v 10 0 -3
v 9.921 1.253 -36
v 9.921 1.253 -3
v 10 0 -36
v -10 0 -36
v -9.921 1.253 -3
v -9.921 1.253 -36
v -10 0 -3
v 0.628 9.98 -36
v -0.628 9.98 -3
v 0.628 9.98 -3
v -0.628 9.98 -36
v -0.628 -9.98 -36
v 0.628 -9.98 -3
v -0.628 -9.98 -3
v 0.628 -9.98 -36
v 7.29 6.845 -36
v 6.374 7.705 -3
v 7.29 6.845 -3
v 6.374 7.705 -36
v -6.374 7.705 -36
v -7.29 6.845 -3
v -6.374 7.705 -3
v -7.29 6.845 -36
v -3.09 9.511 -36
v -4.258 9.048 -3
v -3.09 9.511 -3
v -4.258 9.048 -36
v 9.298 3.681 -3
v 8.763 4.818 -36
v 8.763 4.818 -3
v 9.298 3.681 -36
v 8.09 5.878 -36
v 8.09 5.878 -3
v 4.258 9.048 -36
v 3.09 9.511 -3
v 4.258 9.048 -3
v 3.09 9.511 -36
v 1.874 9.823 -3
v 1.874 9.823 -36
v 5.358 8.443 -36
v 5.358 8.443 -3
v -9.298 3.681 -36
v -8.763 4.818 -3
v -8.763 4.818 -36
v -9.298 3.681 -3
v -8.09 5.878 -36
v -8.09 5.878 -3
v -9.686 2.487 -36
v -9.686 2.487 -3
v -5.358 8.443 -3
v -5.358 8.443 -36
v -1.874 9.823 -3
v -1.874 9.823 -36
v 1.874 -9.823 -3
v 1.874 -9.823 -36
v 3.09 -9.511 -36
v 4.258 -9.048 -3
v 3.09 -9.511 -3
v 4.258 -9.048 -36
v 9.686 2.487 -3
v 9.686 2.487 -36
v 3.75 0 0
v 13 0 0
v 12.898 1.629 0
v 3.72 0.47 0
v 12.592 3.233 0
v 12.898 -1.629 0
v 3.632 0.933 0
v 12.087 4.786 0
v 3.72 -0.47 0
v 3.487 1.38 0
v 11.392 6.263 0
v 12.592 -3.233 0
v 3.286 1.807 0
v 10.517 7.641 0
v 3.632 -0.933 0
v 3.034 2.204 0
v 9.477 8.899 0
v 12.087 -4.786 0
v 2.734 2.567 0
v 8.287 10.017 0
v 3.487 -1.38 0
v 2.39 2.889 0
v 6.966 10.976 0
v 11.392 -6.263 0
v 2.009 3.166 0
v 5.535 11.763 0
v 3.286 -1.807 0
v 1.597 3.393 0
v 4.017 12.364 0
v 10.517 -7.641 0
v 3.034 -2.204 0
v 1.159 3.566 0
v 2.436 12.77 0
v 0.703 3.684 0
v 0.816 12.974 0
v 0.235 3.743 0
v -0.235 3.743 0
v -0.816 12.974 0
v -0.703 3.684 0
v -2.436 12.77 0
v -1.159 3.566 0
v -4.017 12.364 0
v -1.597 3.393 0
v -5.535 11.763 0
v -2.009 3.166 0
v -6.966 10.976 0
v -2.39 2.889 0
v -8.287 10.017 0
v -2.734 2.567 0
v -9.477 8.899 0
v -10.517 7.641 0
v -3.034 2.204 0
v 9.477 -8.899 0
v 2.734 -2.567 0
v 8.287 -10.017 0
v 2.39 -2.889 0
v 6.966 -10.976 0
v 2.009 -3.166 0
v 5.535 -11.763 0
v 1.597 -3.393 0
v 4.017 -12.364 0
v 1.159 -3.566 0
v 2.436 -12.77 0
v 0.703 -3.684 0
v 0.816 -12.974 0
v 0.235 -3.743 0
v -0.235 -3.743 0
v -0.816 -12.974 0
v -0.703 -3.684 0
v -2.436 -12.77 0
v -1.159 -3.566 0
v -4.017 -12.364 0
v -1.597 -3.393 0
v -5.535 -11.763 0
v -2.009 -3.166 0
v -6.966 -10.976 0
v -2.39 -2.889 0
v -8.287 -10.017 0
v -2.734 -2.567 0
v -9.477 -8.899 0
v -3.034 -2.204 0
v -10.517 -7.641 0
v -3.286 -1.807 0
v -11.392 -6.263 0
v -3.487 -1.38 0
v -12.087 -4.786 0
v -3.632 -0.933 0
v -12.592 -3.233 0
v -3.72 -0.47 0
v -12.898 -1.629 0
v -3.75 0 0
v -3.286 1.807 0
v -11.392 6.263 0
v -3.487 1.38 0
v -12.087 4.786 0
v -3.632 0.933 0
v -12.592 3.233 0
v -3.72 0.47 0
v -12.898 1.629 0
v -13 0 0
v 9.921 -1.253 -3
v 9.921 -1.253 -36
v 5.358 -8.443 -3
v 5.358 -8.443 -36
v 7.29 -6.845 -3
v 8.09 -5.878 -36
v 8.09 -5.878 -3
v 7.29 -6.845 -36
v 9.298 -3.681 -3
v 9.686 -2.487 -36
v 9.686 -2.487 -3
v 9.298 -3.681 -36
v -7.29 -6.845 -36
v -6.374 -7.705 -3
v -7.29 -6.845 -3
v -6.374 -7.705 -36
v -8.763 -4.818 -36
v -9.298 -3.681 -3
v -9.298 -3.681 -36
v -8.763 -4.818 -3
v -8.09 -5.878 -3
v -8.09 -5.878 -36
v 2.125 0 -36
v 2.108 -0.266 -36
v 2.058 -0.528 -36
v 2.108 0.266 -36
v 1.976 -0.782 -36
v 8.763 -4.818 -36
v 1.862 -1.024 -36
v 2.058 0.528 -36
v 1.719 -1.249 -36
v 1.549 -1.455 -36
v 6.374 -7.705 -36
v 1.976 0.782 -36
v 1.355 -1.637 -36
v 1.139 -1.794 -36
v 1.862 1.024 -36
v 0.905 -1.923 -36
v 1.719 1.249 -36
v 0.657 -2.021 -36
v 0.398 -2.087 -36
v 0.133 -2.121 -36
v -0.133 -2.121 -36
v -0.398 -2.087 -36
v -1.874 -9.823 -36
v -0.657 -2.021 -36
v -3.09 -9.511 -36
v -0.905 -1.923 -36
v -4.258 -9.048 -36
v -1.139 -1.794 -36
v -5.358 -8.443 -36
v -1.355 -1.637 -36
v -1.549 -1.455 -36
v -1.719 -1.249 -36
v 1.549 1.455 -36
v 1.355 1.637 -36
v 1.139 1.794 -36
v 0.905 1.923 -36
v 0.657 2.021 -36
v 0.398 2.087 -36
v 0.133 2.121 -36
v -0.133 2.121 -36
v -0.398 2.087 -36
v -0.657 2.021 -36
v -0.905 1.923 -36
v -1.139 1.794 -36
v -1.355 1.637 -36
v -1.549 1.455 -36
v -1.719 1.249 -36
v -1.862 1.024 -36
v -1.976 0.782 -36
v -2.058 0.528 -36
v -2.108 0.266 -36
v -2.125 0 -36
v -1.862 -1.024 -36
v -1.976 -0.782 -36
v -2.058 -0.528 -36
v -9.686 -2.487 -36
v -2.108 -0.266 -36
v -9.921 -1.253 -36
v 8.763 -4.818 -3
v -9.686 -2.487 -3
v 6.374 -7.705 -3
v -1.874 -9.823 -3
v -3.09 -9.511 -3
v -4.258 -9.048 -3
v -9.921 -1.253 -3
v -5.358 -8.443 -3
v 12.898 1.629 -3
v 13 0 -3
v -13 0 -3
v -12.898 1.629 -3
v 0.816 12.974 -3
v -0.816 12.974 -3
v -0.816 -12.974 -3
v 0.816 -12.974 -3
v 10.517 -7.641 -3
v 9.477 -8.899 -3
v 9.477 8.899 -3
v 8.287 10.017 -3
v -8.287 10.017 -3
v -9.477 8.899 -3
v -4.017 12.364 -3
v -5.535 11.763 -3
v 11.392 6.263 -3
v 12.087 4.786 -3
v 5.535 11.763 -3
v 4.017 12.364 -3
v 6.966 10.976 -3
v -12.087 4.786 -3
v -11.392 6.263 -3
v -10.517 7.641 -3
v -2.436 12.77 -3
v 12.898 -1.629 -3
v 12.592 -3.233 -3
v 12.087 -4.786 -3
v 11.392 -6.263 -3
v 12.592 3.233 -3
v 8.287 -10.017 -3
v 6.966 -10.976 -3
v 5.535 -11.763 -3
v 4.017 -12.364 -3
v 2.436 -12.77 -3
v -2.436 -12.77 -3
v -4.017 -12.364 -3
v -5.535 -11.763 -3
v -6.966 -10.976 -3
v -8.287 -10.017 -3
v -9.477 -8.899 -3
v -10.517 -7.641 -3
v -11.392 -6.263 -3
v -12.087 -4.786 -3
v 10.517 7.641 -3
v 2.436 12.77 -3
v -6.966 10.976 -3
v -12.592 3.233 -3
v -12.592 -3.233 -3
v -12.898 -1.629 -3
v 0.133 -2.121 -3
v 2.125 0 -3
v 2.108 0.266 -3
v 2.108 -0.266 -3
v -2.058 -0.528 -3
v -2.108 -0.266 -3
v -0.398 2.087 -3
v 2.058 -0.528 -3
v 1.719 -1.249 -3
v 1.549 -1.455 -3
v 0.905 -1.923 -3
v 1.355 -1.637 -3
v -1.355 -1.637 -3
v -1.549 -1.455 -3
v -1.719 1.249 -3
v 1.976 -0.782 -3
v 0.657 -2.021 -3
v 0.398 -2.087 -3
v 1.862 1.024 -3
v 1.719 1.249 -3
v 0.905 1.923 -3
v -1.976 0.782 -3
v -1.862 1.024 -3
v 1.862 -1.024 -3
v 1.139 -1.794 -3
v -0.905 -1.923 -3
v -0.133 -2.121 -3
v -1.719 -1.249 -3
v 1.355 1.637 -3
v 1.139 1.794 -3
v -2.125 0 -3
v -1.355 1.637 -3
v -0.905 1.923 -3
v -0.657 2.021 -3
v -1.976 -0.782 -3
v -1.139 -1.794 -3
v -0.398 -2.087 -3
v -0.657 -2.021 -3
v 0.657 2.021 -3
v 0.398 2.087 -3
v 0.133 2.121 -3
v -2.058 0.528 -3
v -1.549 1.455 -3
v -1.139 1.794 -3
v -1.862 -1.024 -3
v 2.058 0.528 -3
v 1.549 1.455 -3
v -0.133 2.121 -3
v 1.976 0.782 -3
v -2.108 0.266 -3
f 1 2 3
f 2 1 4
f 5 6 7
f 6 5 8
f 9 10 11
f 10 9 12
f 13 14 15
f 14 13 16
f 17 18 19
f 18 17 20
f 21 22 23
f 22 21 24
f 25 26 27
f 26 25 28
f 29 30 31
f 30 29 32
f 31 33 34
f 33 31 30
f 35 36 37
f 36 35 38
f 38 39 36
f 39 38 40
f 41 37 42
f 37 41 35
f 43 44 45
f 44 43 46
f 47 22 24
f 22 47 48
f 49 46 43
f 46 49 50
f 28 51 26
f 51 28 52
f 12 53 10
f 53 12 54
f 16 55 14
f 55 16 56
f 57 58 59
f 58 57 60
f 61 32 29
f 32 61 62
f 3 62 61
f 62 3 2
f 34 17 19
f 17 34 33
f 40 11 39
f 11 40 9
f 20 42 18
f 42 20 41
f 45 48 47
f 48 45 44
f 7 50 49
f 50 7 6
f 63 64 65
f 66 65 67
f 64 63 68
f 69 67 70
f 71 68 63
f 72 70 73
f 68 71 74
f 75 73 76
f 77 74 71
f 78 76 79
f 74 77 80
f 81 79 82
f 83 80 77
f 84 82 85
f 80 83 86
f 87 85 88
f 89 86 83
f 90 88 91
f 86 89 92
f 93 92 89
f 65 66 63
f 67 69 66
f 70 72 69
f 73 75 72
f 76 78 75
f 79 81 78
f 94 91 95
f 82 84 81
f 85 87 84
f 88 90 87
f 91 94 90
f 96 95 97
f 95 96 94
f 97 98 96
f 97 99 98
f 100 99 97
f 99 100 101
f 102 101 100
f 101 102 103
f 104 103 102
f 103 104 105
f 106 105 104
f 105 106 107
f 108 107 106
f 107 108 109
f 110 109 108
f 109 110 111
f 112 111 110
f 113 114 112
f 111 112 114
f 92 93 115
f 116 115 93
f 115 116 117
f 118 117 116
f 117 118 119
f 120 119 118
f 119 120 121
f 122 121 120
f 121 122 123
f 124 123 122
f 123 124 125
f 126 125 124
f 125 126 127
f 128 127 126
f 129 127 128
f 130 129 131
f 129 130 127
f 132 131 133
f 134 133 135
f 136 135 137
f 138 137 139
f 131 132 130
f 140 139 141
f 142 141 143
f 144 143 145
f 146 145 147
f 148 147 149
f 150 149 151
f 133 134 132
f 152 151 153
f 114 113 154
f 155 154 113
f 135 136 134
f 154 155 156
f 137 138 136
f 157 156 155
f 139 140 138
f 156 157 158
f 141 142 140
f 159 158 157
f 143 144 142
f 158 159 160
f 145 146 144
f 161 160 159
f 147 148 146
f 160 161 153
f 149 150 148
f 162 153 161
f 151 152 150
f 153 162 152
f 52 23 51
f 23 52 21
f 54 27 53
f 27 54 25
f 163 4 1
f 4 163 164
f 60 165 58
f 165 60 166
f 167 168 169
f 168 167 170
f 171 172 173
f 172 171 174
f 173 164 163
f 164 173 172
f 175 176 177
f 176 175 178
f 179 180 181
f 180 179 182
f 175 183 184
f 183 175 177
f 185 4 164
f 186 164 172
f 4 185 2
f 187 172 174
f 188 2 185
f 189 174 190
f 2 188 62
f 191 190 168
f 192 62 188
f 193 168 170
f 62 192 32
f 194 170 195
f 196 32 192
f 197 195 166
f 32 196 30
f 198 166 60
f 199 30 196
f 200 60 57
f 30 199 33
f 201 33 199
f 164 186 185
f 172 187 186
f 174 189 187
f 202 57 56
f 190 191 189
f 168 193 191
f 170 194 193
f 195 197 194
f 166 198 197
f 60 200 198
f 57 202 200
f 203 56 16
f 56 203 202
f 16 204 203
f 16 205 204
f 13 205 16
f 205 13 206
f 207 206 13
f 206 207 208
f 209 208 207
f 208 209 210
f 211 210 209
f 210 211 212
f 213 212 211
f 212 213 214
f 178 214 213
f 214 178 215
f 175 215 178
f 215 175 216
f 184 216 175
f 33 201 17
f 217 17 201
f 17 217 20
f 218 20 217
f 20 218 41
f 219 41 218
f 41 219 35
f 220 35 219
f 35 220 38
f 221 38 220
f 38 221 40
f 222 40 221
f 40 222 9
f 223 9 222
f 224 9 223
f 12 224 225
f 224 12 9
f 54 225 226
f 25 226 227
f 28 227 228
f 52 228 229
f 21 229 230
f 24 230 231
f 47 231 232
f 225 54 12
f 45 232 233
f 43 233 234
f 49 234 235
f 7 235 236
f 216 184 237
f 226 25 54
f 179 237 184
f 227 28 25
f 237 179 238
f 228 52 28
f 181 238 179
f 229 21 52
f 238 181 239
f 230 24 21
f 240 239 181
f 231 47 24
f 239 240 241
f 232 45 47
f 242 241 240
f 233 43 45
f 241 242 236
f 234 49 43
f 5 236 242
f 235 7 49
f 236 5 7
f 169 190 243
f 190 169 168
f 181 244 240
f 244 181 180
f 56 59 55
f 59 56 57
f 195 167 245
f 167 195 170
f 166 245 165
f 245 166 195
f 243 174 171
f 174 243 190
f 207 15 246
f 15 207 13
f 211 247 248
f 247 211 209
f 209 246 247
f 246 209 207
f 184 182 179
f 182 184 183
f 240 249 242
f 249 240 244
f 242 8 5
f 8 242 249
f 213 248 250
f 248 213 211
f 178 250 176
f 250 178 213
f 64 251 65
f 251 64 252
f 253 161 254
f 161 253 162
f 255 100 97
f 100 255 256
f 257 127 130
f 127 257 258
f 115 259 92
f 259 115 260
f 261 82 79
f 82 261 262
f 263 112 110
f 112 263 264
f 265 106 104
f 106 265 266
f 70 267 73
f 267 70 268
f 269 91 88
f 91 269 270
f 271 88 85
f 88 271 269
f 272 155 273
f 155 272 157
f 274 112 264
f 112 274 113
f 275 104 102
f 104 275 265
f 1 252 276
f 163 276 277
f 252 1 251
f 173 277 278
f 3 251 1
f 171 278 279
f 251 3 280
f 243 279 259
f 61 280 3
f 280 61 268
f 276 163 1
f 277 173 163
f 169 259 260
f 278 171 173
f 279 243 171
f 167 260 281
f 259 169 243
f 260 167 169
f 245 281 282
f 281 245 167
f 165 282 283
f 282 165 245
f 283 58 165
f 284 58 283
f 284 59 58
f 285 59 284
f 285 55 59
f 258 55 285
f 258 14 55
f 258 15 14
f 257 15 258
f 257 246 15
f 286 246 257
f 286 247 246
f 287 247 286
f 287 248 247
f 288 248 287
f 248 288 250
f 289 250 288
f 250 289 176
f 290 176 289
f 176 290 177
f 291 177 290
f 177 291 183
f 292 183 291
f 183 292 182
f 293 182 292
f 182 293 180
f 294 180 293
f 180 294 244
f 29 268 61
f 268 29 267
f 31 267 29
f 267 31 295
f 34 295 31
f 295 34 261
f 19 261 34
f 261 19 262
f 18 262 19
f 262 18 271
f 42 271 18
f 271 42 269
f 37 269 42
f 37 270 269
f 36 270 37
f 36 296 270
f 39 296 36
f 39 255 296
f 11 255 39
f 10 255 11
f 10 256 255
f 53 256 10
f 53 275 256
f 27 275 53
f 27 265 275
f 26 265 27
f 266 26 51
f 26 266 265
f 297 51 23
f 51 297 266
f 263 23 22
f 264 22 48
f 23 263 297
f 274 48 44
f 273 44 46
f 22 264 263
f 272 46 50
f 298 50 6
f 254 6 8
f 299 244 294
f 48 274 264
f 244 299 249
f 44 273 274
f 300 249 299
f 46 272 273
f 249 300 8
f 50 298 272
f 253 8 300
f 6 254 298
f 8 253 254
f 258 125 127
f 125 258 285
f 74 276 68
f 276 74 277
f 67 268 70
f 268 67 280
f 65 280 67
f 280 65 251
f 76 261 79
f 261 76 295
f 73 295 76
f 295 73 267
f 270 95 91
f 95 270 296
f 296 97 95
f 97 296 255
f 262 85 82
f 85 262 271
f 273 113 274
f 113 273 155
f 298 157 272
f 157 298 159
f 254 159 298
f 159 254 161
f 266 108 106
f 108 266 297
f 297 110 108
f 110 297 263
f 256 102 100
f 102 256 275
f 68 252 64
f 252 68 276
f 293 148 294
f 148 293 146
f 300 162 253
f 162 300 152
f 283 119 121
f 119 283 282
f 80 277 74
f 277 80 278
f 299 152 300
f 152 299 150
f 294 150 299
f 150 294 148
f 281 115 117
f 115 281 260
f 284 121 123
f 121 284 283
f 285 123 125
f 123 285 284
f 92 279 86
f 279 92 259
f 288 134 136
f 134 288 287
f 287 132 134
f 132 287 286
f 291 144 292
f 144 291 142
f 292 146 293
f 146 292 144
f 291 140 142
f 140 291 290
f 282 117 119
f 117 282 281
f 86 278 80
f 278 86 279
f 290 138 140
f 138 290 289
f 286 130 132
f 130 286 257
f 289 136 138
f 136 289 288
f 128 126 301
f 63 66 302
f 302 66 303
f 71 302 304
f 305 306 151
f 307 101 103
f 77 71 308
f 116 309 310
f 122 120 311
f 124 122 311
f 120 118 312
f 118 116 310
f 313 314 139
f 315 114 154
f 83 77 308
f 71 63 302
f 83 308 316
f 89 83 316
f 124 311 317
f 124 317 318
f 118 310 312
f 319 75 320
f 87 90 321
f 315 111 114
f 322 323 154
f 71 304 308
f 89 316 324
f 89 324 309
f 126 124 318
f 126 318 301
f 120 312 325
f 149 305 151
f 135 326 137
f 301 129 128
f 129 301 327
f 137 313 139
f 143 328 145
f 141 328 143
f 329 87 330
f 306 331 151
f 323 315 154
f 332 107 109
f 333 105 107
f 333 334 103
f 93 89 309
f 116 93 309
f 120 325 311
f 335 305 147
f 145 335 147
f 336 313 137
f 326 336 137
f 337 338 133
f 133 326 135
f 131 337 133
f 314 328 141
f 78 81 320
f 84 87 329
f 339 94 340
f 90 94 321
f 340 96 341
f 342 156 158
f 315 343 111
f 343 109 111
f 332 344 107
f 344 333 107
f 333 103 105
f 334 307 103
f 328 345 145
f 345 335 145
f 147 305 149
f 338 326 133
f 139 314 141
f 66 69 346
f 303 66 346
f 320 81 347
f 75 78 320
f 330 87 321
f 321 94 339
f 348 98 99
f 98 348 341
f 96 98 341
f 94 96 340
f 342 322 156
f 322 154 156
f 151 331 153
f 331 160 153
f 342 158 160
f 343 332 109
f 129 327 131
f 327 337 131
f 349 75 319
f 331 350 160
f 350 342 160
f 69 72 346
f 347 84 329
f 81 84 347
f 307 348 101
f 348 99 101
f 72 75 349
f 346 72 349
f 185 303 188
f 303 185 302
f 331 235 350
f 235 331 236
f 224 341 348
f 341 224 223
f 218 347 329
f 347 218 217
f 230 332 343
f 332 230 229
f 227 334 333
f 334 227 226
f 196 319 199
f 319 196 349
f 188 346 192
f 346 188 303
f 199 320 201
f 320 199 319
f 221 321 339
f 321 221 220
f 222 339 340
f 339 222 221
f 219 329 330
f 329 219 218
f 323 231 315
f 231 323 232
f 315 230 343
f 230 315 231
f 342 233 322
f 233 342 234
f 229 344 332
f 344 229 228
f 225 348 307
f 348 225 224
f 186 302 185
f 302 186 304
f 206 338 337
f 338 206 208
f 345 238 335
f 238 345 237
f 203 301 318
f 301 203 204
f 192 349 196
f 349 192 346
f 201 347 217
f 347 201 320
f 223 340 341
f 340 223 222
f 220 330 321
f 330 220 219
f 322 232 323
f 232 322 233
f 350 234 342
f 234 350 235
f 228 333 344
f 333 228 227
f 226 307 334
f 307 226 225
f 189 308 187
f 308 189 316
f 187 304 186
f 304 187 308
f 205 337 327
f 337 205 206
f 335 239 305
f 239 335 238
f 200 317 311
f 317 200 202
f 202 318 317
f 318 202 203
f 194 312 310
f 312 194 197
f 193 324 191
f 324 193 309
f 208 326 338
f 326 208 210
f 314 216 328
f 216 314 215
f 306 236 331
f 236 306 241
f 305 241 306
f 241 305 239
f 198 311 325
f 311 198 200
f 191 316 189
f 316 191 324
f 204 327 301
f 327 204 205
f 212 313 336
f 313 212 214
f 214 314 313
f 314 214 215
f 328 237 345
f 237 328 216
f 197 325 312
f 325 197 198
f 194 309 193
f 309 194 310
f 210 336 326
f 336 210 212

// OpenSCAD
$fn = 50;


difference() {
	union() {
		translate(v = [0, 0, -36.0000000000]) {
			cylinder(h = 36, r = 10.0000000000);
		}
		translate(v = [0, 0, -3.0000000000]) {
			cylinder(h = 3, r = 13.0000000000);
		}
	}
	union() {
		translate(v = [0, 0, 0]) {
			rotate(a = [0, 0, 0]) {
				difference() {
					union() {
						#translate(v = [0, 0, -36.0000000000]) {
							cylinder(h = 36, r = 2.0000000000);
						}
						#translate(v = [0, 0, -3]) {
							cylinder(h = 3, r1 = 2.1250000000, r2 = 3.7500000000);
						}
						#translate(v = [0, 0, -36.0000000000]) {
							cylinder(h = 36, r = 2.1250000000);
						}
						#translate(v = [0, 0, -36.0000000000]) {
							cylinder(h = 36, r = 2.0000000000);
						}
					}
					union();
				}
			}
		}
	}
}
